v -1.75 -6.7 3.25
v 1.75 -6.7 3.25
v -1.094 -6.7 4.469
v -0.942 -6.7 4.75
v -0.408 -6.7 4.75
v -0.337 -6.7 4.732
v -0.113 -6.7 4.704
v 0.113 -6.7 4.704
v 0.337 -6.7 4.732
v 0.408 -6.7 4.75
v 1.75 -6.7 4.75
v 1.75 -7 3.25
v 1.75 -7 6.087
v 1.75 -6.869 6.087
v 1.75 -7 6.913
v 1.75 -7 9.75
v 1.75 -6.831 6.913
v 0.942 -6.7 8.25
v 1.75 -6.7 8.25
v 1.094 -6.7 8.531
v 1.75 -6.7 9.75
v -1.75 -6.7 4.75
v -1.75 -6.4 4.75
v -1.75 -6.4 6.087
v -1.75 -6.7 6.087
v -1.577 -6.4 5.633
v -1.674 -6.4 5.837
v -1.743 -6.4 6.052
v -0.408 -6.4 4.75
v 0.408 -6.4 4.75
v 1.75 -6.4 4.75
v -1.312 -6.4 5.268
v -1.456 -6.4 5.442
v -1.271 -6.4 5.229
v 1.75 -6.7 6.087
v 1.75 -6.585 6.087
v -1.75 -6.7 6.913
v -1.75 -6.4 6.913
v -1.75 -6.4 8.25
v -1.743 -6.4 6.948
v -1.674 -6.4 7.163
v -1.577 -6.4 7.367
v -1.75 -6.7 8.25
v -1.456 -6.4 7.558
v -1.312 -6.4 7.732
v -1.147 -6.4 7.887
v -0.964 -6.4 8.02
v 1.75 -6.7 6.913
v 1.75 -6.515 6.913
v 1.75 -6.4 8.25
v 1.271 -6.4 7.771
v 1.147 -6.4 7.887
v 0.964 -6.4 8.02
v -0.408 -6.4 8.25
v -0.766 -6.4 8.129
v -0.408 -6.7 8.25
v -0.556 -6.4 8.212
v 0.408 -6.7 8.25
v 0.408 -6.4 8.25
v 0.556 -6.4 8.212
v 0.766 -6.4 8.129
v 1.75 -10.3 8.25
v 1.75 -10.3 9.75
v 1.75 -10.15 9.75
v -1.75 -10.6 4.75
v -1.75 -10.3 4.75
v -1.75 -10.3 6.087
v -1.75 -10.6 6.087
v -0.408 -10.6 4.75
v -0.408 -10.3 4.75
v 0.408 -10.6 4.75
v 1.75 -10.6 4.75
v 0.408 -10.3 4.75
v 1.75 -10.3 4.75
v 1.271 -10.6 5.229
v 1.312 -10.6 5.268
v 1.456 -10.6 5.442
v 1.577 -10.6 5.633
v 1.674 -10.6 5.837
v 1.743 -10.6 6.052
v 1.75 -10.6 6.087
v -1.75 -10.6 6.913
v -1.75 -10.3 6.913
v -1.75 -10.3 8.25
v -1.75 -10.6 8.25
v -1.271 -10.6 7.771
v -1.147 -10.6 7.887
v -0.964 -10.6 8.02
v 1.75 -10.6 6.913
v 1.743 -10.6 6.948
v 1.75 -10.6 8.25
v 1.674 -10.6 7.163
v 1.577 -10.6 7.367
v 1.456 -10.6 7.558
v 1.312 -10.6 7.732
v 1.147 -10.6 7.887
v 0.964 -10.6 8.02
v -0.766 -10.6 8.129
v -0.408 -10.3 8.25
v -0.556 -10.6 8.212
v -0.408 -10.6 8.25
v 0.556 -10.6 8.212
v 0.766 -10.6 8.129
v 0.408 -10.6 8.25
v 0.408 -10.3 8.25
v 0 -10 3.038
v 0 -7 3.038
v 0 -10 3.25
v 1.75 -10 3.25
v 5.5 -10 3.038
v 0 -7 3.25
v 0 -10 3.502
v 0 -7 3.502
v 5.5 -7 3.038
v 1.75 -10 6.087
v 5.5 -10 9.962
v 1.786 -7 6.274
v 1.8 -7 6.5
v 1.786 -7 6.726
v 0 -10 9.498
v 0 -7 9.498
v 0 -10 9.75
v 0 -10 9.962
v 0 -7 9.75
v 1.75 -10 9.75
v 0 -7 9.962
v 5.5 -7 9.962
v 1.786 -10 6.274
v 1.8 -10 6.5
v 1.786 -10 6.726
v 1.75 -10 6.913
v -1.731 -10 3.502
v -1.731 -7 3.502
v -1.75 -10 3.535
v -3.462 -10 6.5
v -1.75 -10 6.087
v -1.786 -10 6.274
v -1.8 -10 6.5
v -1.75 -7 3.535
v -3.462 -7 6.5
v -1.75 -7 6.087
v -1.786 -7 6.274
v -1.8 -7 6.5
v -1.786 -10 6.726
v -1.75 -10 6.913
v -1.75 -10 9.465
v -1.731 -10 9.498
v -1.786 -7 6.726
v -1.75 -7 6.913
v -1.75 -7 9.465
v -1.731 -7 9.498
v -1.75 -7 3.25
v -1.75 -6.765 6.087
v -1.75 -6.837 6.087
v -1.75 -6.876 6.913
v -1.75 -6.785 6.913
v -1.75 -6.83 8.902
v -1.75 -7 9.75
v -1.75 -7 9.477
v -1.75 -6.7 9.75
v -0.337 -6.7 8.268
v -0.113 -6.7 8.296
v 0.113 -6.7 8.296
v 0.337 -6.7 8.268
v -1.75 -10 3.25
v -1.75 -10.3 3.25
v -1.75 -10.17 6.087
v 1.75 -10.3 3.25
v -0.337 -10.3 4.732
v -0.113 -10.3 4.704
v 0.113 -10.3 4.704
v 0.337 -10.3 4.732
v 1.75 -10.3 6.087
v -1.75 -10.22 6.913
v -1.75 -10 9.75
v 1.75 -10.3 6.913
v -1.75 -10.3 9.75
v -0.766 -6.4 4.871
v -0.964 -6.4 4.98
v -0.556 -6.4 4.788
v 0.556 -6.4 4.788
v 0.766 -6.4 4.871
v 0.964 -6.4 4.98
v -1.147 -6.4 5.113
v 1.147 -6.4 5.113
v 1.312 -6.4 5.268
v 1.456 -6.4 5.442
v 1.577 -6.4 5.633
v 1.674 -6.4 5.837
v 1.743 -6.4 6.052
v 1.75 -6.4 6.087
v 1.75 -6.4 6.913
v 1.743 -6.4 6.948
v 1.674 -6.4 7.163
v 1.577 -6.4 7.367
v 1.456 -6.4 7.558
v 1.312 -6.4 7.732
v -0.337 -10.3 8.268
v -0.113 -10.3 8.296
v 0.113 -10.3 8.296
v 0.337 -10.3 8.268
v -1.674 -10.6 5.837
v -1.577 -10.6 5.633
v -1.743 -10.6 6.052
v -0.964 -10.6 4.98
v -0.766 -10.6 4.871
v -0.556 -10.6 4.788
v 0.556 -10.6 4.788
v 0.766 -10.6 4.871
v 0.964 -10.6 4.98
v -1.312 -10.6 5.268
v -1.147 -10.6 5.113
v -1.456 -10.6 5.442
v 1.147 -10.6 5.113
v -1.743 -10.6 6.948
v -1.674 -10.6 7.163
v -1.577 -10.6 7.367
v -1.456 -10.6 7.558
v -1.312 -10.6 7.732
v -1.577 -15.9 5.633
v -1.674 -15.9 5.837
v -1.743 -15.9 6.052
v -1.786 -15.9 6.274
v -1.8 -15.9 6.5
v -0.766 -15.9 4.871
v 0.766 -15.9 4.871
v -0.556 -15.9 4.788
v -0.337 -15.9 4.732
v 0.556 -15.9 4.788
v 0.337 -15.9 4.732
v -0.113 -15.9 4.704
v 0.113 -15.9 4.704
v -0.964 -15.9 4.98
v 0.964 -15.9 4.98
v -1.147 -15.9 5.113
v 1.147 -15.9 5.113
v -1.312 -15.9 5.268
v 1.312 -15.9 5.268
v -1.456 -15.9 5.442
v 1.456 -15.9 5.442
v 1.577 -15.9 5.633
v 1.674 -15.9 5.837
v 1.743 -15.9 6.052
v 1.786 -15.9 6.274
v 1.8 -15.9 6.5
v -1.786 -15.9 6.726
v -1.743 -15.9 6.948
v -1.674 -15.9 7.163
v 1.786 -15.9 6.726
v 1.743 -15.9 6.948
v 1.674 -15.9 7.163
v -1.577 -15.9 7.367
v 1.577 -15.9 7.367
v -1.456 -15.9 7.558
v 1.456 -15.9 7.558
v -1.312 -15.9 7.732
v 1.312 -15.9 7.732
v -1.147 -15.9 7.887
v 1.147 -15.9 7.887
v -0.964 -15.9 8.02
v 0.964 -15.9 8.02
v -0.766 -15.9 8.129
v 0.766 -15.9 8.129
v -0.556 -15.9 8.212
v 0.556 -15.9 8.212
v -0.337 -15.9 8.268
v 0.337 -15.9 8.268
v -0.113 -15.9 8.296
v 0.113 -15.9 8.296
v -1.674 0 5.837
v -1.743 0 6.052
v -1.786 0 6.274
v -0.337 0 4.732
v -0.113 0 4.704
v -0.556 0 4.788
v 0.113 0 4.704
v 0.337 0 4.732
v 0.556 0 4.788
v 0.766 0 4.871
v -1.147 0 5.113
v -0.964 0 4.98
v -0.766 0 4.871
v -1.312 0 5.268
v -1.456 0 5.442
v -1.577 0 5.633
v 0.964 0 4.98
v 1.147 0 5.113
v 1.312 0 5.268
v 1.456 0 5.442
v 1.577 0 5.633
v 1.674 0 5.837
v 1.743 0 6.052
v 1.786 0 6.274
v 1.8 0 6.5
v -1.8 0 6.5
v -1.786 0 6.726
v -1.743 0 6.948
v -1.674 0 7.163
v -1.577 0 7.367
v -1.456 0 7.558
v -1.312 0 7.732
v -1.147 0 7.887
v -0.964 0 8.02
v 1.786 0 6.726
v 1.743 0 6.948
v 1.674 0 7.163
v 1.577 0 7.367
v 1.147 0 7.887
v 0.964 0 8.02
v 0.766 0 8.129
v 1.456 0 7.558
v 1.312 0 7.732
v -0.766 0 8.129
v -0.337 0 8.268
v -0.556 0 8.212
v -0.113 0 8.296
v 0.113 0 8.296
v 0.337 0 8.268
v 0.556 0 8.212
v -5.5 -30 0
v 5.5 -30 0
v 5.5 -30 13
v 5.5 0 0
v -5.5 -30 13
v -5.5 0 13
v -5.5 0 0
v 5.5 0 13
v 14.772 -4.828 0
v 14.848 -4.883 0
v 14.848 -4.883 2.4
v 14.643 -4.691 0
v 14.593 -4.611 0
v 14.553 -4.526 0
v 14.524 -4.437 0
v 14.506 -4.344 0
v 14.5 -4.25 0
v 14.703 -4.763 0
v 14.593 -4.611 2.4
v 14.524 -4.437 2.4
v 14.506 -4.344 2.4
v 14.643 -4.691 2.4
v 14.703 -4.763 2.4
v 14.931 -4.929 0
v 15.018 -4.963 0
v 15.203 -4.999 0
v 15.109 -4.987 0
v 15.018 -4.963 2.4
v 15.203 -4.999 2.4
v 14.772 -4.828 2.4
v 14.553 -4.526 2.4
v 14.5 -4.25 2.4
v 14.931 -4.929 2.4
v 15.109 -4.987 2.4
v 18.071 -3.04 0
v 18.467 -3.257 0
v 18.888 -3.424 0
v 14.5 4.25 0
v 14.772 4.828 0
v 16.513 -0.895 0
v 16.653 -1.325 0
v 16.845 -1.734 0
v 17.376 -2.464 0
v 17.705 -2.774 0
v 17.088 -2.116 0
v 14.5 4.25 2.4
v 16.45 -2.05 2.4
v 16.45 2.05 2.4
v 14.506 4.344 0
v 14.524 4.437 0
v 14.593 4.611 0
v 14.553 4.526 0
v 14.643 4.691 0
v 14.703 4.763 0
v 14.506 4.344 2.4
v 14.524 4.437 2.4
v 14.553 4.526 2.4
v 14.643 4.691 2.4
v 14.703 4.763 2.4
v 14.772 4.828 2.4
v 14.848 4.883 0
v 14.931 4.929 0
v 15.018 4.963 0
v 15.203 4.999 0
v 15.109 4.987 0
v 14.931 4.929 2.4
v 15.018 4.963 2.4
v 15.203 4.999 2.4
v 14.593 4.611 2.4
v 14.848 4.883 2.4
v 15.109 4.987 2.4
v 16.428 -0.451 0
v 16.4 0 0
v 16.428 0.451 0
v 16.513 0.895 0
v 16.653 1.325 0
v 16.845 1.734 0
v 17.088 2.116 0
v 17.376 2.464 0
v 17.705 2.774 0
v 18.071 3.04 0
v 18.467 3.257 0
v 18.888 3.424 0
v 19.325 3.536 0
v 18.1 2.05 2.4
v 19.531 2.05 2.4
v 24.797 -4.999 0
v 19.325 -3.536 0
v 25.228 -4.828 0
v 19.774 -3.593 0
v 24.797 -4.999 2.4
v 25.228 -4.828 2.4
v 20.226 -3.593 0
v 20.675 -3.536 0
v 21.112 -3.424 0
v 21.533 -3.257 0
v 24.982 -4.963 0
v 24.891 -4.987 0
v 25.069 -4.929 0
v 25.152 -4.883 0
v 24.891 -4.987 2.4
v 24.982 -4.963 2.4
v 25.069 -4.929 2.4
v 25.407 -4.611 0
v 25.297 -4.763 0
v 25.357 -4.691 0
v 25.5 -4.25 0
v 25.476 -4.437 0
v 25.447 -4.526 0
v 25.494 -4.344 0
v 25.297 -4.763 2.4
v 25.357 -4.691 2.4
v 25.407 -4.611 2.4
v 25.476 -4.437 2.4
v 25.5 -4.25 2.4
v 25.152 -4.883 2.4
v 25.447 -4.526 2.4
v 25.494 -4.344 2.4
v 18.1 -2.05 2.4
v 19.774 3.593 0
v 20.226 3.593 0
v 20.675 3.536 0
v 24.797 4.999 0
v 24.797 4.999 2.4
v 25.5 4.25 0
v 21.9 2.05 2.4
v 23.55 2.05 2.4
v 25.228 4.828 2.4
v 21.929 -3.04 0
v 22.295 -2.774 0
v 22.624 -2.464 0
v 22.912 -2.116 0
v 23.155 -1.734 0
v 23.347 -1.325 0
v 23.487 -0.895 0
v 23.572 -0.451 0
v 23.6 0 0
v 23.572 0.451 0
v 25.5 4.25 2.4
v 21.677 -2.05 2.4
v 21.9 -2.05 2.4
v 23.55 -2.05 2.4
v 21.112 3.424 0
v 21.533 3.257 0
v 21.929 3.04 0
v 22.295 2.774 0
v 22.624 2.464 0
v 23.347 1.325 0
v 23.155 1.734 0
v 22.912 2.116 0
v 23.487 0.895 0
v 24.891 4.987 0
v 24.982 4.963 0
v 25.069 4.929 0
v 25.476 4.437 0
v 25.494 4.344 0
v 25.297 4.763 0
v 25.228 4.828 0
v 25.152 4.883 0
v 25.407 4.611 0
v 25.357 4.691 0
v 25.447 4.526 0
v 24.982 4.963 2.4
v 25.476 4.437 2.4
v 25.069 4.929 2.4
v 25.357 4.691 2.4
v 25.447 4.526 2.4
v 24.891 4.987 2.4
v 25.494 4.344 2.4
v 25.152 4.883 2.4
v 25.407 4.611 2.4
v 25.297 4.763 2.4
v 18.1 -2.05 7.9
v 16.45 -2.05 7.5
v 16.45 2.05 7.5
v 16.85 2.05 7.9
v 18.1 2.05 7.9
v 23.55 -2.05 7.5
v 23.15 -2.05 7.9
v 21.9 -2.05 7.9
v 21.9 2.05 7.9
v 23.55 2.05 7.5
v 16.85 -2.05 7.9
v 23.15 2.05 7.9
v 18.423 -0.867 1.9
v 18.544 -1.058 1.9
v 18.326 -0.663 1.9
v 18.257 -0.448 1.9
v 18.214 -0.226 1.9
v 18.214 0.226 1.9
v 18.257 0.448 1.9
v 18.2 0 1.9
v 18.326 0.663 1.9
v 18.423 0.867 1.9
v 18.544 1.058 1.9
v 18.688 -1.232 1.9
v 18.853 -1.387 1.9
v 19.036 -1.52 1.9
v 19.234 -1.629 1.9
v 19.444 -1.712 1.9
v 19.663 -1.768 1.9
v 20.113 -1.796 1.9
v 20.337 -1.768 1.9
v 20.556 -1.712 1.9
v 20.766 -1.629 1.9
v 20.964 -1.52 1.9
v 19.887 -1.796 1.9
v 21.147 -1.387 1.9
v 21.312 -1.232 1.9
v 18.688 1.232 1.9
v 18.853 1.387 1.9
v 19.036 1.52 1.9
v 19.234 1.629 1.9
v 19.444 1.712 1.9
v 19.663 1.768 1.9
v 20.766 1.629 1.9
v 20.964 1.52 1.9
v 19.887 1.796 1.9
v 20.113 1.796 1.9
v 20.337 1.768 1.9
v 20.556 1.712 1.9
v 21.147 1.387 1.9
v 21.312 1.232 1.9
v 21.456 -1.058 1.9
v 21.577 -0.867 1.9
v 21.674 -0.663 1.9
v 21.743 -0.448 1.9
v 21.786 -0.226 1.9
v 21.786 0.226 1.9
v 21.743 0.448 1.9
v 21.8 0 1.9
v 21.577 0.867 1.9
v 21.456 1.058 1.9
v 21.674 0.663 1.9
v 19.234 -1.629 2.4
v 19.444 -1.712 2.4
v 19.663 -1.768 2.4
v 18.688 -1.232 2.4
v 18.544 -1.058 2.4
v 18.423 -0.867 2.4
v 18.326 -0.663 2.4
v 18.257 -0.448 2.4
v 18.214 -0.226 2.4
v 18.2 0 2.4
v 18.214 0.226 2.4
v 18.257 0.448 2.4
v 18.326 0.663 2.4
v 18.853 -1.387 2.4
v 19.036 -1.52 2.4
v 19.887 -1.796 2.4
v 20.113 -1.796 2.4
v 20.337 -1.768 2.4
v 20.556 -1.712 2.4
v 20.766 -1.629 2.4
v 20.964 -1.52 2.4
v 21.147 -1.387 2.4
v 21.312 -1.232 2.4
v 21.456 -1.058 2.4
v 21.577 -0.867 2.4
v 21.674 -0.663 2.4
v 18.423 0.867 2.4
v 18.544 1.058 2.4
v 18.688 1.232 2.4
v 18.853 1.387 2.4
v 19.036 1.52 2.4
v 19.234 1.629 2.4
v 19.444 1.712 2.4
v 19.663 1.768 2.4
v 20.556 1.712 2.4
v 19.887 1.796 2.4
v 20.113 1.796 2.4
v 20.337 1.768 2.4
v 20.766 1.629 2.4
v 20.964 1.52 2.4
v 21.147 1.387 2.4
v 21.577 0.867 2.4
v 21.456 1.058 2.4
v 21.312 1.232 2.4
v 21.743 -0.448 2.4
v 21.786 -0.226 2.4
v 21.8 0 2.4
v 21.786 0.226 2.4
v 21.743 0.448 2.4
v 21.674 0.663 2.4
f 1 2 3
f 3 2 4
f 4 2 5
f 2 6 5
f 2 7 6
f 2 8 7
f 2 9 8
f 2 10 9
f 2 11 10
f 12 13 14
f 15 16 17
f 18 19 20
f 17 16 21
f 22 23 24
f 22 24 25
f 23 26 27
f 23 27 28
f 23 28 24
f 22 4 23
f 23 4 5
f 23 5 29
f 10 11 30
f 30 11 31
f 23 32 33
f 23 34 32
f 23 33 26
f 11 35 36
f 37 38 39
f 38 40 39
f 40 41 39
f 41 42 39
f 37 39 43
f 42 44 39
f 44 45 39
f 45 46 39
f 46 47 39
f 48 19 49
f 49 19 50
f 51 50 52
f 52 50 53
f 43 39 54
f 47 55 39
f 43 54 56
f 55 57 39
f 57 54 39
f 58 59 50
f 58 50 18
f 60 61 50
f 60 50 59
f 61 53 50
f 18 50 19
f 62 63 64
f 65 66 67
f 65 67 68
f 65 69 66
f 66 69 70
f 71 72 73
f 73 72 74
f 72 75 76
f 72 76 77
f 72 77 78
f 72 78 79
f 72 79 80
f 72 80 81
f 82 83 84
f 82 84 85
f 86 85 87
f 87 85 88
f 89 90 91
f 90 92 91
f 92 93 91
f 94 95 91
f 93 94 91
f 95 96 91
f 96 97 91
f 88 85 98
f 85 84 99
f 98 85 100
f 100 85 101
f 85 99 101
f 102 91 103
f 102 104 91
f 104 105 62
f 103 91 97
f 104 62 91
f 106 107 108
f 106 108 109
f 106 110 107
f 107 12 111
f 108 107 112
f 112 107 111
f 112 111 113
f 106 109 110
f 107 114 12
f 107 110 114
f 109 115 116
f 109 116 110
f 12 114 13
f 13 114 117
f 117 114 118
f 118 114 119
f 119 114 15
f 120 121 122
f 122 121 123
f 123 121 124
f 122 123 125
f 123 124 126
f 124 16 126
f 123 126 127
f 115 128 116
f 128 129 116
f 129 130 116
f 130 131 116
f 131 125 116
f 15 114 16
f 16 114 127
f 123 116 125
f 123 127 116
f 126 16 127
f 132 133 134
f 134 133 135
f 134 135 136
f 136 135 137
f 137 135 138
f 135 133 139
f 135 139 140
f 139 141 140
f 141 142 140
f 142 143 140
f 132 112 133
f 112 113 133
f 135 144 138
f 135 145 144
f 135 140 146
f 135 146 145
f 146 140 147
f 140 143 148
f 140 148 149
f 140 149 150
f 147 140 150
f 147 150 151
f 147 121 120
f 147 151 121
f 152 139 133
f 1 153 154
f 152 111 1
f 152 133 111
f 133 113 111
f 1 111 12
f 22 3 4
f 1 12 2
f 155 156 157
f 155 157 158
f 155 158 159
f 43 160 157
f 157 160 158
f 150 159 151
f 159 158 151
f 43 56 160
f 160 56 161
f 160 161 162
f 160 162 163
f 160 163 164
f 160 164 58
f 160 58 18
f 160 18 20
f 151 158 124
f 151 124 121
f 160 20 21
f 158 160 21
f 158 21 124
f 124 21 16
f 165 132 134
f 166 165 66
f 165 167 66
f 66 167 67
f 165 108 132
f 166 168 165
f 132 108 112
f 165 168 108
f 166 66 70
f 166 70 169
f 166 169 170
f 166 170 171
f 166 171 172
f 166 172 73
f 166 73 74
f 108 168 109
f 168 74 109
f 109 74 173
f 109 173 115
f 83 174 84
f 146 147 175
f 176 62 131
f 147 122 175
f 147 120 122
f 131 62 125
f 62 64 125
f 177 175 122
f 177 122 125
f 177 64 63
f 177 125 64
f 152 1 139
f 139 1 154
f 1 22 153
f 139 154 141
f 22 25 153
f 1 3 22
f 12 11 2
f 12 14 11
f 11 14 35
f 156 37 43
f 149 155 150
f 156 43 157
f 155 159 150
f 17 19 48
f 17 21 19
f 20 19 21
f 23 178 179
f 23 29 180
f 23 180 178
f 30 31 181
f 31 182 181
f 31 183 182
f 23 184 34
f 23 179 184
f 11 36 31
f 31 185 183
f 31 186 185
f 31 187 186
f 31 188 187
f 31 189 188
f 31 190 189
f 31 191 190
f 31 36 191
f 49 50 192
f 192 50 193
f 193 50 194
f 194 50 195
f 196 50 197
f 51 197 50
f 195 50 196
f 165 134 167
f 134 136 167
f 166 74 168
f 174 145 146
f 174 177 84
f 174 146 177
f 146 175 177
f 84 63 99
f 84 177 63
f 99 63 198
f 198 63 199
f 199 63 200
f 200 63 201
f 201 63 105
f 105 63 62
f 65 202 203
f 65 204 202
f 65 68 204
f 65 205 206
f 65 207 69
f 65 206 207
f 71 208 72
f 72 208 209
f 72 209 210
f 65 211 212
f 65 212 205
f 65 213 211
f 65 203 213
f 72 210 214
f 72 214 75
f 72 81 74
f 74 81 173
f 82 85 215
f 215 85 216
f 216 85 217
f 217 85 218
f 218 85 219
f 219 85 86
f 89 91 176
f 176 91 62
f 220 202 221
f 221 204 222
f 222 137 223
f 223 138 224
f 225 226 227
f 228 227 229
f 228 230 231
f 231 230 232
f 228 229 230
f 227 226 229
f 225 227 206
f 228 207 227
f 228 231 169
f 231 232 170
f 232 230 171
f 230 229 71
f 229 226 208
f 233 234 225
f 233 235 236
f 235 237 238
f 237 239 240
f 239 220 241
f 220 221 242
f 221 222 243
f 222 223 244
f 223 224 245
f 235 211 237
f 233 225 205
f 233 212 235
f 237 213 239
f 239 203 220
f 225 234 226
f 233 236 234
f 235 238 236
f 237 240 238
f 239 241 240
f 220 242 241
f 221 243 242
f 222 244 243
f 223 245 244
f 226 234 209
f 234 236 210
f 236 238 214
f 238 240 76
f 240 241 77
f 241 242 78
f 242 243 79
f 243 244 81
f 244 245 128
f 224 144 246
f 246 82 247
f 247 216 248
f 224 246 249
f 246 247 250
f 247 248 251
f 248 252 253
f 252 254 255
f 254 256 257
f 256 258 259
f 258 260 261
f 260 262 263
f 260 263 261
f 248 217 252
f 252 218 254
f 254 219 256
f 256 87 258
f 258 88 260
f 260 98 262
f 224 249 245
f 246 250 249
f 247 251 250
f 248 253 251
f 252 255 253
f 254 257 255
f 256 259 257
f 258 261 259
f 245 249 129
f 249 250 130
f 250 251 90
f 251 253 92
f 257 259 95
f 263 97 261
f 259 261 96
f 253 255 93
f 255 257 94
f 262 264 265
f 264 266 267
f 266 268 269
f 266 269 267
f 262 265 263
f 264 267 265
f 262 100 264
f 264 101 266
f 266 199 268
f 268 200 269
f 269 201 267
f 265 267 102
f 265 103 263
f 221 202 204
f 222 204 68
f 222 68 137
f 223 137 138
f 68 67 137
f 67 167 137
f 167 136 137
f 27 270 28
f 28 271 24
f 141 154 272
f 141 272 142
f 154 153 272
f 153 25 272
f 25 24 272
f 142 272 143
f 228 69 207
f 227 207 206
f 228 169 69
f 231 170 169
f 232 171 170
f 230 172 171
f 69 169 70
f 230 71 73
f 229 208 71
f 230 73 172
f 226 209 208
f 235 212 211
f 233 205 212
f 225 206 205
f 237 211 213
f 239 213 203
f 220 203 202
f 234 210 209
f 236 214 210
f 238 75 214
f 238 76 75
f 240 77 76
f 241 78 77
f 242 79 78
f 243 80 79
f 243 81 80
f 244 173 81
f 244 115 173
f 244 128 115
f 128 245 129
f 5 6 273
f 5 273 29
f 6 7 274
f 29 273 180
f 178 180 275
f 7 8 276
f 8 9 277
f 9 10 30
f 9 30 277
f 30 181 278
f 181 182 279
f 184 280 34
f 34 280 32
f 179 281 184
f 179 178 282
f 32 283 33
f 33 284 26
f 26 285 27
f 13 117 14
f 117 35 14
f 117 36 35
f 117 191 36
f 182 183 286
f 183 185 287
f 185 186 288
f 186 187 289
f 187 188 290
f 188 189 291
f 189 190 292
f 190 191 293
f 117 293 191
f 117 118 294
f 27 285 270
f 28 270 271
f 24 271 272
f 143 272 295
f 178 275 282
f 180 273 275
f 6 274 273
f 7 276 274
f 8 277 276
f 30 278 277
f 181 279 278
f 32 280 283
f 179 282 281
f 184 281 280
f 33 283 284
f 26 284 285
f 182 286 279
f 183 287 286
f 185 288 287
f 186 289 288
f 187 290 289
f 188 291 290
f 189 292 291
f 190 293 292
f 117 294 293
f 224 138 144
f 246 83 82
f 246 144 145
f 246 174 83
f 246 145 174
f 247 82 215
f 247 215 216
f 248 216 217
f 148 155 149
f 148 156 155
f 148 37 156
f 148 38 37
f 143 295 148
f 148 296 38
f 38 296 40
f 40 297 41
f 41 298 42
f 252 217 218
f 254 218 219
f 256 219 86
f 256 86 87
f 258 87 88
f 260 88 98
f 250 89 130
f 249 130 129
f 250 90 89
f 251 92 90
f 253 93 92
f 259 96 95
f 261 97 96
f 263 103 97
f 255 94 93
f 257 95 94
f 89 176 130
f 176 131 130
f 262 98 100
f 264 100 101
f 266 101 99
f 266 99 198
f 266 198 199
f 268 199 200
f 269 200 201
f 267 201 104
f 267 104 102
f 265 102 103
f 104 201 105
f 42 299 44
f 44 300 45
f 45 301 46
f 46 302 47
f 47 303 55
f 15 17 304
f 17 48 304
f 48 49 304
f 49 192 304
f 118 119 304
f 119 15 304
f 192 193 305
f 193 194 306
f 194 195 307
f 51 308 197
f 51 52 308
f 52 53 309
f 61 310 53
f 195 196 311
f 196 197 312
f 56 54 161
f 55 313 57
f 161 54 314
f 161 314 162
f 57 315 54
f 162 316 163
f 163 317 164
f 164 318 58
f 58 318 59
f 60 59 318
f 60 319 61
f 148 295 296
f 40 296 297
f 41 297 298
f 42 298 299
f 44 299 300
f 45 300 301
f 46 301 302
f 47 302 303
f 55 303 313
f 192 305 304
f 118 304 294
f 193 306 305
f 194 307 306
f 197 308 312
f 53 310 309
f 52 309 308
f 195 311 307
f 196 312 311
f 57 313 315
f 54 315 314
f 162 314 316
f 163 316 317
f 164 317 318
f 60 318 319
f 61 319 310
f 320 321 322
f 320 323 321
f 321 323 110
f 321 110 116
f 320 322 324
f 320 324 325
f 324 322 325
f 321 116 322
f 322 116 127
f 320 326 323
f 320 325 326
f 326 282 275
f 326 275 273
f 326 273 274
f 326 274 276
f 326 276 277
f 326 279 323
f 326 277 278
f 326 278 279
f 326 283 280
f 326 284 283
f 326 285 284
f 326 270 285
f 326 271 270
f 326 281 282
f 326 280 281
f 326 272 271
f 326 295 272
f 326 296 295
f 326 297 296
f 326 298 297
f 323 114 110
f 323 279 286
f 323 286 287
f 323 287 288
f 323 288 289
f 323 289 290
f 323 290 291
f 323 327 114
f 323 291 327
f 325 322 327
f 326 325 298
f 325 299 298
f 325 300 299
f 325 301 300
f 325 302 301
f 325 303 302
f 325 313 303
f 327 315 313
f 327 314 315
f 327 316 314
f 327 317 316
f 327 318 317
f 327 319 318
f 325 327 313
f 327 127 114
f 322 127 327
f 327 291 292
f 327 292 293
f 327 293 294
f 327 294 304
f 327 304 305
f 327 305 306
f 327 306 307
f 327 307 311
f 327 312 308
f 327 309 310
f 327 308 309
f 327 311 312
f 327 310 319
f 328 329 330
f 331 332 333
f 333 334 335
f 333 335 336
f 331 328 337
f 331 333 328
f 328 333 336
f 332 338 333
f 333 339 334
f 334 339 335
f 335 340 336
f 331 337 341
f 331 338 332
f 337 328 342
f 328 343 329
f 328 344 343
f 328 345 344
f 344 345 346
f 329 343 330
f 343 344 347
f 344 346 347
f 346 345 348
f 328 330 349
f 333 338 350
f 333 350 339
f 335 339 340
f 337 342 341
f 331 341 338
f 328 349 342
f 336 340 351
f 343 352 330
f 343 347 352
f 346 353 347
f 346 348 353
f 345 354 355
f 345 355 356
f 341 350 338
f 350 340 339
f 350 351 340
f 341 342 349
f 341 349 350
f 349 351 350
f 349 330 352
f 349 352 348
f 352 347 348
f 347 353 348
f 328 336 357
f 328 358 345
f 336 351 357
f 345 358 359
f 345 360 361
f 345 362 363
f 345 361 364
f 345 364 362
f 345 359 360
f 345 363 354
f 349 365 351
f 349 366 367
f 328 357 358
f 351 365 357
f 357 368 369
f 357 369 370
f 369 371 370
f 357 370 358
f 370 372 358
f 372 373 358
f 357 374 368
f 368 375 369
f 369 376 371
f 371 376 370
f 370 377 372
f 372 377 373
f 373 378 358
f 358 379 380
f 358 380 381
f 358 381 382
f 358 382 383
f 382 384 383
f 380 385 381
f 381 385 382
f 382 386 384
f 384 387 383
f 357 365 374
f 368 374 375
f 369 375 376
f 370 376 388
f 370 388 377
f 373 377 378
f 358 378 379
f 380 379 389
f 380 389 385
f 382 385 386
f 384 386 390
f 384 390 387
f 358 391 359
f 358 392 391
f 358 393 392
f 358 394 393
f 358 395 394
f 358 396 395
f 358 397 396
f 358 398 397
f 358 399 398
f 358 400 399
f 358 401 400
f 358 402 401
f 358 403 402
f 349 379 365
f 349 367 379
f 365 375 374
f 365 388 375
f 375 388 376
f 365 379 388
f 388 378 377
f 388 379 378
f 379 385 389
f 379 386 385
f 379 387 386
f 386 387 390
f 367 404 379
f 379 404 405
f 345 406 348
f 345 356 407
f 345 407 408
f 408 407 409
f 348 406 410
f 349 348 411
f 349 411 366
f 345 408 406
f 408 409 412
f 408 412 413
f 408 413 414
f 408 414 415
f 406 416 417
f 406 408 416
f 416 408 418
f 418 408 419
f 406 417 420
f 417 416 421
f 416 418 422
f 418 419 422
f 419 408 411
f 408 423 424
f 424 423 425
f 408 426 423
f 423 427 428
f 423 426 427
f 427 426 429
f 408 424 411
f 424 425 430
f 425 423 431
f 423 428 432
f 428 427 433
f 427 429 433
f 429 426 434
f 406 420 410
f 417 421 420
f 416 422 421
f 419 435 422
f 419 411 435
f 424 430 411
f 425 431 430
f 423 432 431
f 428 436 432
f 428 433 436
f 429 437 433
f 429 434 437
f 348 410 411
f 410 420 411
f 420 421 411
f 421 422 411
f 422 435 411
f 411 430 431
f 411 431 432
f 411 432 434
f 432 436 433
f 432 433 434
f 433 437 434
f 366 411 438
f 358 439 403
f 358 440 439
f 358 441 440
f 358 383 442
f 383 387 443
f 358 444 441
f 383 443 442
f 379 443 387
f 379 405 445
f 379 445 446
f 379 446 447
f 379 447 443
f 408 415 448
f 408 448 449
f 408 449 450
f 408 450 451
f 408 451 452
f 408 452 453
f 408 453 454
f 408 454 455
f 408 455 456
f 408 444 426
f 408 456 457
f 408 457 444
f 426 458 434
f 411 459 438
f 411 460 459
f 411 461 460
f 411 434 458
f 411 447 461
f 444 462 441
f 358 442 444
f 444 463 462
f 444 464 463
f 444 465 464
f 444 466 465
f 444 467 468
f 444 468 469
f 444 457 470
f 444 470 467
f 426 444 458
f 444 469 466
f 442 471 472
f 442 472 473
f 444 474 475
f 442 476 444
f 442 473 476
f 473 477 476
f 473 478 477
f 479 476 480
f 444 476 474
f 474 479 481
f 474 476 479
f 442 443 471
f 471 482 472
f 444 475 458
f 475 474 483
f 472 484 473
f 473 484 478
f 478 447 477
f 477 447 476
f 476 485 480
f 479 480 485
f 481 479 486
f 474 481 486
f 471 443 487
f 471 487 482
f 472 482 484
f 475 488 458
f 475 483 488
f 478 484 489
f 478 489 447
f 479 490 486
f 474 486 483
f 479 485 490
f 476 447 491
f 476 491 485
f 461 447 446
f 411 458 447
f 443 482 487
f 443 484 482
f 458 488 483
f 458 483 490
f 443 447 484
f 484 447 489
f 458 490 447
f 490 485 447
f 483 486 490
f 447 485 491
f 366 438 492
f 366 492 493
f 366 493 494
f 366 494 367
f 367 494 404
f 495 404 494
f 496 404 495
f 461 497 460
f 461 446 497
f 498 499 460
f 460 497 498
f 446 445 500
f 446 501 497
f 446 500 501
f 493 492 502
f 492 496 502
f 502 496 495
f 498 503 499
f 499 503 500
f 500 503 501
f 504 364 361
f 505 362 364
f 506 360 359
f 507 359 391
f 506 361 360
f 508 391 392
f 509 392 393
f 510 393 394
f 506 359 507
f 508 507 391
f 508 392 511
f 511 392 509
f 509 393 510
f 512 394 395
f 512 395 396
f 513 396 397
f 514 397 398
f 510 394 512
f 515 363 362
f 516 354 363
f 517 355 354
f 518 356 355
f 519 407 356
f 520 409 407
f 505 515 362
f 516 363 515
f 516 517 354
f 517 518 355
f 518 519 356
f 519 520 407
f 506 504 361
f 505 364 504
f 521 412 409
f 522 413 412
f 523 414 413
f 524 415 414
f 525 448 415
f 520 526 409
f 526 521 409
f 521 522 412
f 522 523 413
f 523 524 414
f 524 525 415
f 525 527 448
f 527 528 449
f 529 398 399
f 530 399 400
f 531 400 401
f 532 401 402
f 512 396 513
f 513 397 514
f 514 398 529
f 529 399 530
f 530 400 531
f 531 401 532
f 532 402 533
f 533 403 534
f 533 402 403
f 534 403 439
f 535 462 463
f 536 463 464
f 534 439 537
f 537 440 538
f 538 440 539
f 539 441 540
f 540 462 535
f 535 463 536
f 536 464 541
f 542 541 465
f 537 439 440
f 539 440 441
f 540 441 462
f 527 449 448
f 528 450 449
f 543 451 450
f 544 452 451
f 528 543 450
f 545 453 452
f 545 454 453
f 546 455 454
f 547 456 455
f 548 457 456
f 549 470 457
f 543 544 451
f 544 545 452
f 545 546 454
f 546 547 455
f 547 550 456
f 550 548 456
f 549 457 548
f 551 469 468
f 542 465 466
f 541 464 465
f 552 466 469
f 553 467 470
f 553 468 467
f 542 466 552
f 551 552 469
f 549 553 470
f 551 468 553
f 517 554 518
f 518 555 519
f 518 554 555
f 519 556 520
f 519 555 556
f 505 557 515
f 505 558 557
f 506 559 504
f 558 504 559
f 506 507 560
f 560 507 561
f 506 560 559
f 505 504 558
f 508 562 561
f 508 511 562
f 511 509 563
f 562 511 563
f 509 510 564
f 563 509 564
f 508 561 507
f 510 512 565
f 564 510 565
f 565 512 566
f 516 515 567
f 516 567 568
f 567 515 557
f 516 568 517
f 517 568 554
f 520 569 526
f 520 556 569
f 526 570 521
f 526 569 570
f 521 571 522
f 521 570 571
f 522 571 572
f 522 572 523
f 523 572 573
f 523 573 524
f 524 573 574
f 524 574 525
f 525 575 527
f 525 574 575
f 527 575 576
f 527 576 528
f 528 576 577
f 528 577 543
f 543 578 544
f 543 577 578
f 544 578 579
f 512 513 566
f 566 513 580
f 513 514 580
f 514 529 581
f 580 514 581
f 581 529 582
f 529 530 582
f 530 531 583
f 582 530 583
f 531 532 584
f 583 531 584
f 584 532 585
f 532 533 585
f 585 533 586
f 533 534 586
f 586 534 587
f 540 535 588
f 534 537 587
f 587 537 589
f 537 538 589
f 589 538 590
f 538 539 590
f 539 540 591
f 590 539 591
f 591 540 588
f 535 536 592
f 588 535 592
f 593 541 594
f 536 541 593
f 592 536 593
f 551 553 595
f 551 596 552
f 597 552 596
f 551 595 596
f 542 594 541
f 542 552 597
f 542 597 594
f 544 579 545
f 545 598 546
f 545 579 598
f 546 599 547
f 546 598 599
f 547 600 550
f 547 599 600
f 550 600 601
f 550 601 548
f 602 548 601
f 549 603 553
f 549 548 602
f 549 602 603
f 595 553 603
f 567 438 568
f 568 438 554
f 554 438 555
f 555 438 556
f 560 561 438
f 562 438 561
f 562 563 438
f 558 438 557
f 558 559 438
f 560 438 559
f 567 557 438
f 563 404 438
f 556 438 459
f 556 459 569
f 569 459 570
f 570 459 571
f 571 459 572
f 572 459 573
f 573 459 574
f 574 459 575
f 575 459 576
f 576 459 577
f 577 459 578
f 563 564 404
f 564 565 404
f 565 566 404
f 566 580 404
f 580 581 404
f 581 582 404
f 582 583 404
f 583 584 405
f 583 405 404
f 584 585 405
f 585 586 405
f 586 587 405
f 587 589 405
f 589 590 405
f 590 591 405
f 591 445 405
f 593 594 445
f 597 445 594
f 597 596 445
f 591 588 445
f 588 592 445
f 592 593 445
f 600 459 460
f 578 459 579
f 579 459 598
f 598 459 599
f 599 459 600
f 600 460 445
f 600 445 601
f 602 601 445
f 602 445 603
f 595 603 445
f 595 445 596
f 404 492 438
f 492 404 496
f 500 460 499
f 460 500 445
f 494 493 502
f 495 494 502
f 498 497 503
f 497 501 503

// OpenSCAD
$fn = 50;

difference() {
	union() {
		translate(v = [0, 0, 4.5]) {
			rotate(a = [0, 0, 0]) {
				difference() {
					union() {
						translate(v = [-5.5, -30.0, -4.5]) {
							cube(size = [11.0, 30.0, 13.0]);
						}
					}
					union() {
						translate(v = [0, -7.0, 2.0]) {
							rotate(a = [90, 0, 0]) {
								difference() {
									union() {
										translate(v = [-1.75, -3.25, -0.3]) {
											cube(size = [3.5, 6.5, 0.3]);
										}
										translate(v = [-1.75, -1.75, -0.6]) {
											cube(size = [3.5, 3.5, 0.3]);
										}
										translate(v = [-1.75, -3.25, 3]) {
											cube(size = [3.5, 6.5, 0.3]);
										}
										translate(v = [-1.75, -1.75, 3.3]) {
											cube(size = [3.5, 3.5, 0.3]);
										}
										translate(v = [0.0, -3.4619999999999997, 0]) {
											cube(size = [20, 6.9239999999999995, 3]);
										}
										linear_extrude(height = 3) {
											polygon(points = [[3.4619999999999997, 0.0], [1.7310000000000003, 2.9981799479017264], [-1.7309999999999992, 2.9981799479017264], [-3.4619999999999997, 4.2397272186481365e-16], [-1.7310000000000014, -2.998179947901726], [1.7309999999999977, -2.9981799479017277]]);
										}
										translate(v = [-1.75, -3.25, -0.3]) {
											cube(size = [3.5, 6.5, 0.3]);
										}
										translate(v = [-1.75, -1.75, -0.6]) {
											cube(size = [3.5, 3.5, 0.3]);
										}
										translate(v = [-1.75, -3.25, 3]) {
											cube(size = [3.5, 6.5, 0.3]);
										}
										translate(v = [-1.75, -1.75, 3.3]) {
											cube(size = [3.5, 3.5, 0.3]);
										}
										translate(v = [-1.75, -3.25, -0.3]) {
											cube(size = [3.5, 6.5, 0.3]);
										}
										translate(v = [-1.75, -1.75, -0.6]) {
											cube(size = [3.5, 3.5, 0.3]);
										}
										translate(v = [-1.75, -3.25, 3]) {
											cube(size = [3.5, 6.5, 0.3]);
										}
										translate(v = [-1.75, -1.75, 3.3]) {
											cube(size = [3.5, 3.5, 0.3]);
										}
									}
									union();
								}
							}
						}
						translate(v = [0, 0.1, 2.0]) {
							rotate(a = [90, 0, 0]) {
								cylinder(h = 16, r = 1.8);
							}
						}
					}
				}
			}
		}
		translate(v = [20, 0, 0]) {
			rotate(a = [0, 0, 0]) {
				difference() {
					union() {
						hull() {
							translate(v = [-4.75, 4.25, 0]) {
								cylinder(h = 2.4, r = 0.75);
							}
							translate(v = [4.75, 4.25, 0]) {
								cylinder(h = 2.4, r = 0.75);
							}
							translate(v = [-4.75, -4.25, 0]) {
								cylinder(h = 2.4, r = 0.75);
							}
							translate(v = [4.75, -4.25, 0]) {
								cylinder(h = 2.4, r = 0.75);
							}
						}
						translate(v = [-3.55, -2.05, 2.35]) {
							cube(size = [7.1, 4.1, 5.55]);
						}
					}
					union() {
						translate(v = [0, 0, 0]) {
							rotate(a = [0, 180, 0]) {
								difference() {
									union() {
										translate(v = [0, 0, -20.0]) {
											cylinder(h = 20.0, r = 1.5);
										}
										translate(v = [0, 0, -1.9]) {
											cylinder(h = 1.9, r1 = 1.8, r2 = 3.6);
										}
										cylinder(h = 250, r = 3.6);
										translate(v = [0, 0, -20.0]) {
											cylinder(h = 20.0, r = 1.8);
										}
										translate(v = [0, 0, -20.0]) {
											cylinder(h = 20.0, r = 1.5);
										}
									}
									union();
								}
							}
						}
						translate(v = [-1.9, -2.55, 2.4]) {
							cube(size = [3.8, 5.1, 5.6]);
						}
						translate(v = [0, 2.15, 0]) {
							rotate(a = [90, 0, 0]) {
								linear_extrude(height = 4.3) {
									polygon(points = [[-3.75, 7.300000000000001], [-2.9499999999999997, 8.1], [-3.75, 8.1]]);
								}
							}
						}
						translate(v = [0, 2.15, 0]) {
							rotate(a = [90, 0, 0]) {
								linear_extrude(height = 4.3) {
									polygon(points = [[3.75, 7.300000000000001], [2.9499999999999997, 8.1], [3.75, 8.1]]);
								}
							}
						}
					}
				}
			}
		}
	}
	union();
}
